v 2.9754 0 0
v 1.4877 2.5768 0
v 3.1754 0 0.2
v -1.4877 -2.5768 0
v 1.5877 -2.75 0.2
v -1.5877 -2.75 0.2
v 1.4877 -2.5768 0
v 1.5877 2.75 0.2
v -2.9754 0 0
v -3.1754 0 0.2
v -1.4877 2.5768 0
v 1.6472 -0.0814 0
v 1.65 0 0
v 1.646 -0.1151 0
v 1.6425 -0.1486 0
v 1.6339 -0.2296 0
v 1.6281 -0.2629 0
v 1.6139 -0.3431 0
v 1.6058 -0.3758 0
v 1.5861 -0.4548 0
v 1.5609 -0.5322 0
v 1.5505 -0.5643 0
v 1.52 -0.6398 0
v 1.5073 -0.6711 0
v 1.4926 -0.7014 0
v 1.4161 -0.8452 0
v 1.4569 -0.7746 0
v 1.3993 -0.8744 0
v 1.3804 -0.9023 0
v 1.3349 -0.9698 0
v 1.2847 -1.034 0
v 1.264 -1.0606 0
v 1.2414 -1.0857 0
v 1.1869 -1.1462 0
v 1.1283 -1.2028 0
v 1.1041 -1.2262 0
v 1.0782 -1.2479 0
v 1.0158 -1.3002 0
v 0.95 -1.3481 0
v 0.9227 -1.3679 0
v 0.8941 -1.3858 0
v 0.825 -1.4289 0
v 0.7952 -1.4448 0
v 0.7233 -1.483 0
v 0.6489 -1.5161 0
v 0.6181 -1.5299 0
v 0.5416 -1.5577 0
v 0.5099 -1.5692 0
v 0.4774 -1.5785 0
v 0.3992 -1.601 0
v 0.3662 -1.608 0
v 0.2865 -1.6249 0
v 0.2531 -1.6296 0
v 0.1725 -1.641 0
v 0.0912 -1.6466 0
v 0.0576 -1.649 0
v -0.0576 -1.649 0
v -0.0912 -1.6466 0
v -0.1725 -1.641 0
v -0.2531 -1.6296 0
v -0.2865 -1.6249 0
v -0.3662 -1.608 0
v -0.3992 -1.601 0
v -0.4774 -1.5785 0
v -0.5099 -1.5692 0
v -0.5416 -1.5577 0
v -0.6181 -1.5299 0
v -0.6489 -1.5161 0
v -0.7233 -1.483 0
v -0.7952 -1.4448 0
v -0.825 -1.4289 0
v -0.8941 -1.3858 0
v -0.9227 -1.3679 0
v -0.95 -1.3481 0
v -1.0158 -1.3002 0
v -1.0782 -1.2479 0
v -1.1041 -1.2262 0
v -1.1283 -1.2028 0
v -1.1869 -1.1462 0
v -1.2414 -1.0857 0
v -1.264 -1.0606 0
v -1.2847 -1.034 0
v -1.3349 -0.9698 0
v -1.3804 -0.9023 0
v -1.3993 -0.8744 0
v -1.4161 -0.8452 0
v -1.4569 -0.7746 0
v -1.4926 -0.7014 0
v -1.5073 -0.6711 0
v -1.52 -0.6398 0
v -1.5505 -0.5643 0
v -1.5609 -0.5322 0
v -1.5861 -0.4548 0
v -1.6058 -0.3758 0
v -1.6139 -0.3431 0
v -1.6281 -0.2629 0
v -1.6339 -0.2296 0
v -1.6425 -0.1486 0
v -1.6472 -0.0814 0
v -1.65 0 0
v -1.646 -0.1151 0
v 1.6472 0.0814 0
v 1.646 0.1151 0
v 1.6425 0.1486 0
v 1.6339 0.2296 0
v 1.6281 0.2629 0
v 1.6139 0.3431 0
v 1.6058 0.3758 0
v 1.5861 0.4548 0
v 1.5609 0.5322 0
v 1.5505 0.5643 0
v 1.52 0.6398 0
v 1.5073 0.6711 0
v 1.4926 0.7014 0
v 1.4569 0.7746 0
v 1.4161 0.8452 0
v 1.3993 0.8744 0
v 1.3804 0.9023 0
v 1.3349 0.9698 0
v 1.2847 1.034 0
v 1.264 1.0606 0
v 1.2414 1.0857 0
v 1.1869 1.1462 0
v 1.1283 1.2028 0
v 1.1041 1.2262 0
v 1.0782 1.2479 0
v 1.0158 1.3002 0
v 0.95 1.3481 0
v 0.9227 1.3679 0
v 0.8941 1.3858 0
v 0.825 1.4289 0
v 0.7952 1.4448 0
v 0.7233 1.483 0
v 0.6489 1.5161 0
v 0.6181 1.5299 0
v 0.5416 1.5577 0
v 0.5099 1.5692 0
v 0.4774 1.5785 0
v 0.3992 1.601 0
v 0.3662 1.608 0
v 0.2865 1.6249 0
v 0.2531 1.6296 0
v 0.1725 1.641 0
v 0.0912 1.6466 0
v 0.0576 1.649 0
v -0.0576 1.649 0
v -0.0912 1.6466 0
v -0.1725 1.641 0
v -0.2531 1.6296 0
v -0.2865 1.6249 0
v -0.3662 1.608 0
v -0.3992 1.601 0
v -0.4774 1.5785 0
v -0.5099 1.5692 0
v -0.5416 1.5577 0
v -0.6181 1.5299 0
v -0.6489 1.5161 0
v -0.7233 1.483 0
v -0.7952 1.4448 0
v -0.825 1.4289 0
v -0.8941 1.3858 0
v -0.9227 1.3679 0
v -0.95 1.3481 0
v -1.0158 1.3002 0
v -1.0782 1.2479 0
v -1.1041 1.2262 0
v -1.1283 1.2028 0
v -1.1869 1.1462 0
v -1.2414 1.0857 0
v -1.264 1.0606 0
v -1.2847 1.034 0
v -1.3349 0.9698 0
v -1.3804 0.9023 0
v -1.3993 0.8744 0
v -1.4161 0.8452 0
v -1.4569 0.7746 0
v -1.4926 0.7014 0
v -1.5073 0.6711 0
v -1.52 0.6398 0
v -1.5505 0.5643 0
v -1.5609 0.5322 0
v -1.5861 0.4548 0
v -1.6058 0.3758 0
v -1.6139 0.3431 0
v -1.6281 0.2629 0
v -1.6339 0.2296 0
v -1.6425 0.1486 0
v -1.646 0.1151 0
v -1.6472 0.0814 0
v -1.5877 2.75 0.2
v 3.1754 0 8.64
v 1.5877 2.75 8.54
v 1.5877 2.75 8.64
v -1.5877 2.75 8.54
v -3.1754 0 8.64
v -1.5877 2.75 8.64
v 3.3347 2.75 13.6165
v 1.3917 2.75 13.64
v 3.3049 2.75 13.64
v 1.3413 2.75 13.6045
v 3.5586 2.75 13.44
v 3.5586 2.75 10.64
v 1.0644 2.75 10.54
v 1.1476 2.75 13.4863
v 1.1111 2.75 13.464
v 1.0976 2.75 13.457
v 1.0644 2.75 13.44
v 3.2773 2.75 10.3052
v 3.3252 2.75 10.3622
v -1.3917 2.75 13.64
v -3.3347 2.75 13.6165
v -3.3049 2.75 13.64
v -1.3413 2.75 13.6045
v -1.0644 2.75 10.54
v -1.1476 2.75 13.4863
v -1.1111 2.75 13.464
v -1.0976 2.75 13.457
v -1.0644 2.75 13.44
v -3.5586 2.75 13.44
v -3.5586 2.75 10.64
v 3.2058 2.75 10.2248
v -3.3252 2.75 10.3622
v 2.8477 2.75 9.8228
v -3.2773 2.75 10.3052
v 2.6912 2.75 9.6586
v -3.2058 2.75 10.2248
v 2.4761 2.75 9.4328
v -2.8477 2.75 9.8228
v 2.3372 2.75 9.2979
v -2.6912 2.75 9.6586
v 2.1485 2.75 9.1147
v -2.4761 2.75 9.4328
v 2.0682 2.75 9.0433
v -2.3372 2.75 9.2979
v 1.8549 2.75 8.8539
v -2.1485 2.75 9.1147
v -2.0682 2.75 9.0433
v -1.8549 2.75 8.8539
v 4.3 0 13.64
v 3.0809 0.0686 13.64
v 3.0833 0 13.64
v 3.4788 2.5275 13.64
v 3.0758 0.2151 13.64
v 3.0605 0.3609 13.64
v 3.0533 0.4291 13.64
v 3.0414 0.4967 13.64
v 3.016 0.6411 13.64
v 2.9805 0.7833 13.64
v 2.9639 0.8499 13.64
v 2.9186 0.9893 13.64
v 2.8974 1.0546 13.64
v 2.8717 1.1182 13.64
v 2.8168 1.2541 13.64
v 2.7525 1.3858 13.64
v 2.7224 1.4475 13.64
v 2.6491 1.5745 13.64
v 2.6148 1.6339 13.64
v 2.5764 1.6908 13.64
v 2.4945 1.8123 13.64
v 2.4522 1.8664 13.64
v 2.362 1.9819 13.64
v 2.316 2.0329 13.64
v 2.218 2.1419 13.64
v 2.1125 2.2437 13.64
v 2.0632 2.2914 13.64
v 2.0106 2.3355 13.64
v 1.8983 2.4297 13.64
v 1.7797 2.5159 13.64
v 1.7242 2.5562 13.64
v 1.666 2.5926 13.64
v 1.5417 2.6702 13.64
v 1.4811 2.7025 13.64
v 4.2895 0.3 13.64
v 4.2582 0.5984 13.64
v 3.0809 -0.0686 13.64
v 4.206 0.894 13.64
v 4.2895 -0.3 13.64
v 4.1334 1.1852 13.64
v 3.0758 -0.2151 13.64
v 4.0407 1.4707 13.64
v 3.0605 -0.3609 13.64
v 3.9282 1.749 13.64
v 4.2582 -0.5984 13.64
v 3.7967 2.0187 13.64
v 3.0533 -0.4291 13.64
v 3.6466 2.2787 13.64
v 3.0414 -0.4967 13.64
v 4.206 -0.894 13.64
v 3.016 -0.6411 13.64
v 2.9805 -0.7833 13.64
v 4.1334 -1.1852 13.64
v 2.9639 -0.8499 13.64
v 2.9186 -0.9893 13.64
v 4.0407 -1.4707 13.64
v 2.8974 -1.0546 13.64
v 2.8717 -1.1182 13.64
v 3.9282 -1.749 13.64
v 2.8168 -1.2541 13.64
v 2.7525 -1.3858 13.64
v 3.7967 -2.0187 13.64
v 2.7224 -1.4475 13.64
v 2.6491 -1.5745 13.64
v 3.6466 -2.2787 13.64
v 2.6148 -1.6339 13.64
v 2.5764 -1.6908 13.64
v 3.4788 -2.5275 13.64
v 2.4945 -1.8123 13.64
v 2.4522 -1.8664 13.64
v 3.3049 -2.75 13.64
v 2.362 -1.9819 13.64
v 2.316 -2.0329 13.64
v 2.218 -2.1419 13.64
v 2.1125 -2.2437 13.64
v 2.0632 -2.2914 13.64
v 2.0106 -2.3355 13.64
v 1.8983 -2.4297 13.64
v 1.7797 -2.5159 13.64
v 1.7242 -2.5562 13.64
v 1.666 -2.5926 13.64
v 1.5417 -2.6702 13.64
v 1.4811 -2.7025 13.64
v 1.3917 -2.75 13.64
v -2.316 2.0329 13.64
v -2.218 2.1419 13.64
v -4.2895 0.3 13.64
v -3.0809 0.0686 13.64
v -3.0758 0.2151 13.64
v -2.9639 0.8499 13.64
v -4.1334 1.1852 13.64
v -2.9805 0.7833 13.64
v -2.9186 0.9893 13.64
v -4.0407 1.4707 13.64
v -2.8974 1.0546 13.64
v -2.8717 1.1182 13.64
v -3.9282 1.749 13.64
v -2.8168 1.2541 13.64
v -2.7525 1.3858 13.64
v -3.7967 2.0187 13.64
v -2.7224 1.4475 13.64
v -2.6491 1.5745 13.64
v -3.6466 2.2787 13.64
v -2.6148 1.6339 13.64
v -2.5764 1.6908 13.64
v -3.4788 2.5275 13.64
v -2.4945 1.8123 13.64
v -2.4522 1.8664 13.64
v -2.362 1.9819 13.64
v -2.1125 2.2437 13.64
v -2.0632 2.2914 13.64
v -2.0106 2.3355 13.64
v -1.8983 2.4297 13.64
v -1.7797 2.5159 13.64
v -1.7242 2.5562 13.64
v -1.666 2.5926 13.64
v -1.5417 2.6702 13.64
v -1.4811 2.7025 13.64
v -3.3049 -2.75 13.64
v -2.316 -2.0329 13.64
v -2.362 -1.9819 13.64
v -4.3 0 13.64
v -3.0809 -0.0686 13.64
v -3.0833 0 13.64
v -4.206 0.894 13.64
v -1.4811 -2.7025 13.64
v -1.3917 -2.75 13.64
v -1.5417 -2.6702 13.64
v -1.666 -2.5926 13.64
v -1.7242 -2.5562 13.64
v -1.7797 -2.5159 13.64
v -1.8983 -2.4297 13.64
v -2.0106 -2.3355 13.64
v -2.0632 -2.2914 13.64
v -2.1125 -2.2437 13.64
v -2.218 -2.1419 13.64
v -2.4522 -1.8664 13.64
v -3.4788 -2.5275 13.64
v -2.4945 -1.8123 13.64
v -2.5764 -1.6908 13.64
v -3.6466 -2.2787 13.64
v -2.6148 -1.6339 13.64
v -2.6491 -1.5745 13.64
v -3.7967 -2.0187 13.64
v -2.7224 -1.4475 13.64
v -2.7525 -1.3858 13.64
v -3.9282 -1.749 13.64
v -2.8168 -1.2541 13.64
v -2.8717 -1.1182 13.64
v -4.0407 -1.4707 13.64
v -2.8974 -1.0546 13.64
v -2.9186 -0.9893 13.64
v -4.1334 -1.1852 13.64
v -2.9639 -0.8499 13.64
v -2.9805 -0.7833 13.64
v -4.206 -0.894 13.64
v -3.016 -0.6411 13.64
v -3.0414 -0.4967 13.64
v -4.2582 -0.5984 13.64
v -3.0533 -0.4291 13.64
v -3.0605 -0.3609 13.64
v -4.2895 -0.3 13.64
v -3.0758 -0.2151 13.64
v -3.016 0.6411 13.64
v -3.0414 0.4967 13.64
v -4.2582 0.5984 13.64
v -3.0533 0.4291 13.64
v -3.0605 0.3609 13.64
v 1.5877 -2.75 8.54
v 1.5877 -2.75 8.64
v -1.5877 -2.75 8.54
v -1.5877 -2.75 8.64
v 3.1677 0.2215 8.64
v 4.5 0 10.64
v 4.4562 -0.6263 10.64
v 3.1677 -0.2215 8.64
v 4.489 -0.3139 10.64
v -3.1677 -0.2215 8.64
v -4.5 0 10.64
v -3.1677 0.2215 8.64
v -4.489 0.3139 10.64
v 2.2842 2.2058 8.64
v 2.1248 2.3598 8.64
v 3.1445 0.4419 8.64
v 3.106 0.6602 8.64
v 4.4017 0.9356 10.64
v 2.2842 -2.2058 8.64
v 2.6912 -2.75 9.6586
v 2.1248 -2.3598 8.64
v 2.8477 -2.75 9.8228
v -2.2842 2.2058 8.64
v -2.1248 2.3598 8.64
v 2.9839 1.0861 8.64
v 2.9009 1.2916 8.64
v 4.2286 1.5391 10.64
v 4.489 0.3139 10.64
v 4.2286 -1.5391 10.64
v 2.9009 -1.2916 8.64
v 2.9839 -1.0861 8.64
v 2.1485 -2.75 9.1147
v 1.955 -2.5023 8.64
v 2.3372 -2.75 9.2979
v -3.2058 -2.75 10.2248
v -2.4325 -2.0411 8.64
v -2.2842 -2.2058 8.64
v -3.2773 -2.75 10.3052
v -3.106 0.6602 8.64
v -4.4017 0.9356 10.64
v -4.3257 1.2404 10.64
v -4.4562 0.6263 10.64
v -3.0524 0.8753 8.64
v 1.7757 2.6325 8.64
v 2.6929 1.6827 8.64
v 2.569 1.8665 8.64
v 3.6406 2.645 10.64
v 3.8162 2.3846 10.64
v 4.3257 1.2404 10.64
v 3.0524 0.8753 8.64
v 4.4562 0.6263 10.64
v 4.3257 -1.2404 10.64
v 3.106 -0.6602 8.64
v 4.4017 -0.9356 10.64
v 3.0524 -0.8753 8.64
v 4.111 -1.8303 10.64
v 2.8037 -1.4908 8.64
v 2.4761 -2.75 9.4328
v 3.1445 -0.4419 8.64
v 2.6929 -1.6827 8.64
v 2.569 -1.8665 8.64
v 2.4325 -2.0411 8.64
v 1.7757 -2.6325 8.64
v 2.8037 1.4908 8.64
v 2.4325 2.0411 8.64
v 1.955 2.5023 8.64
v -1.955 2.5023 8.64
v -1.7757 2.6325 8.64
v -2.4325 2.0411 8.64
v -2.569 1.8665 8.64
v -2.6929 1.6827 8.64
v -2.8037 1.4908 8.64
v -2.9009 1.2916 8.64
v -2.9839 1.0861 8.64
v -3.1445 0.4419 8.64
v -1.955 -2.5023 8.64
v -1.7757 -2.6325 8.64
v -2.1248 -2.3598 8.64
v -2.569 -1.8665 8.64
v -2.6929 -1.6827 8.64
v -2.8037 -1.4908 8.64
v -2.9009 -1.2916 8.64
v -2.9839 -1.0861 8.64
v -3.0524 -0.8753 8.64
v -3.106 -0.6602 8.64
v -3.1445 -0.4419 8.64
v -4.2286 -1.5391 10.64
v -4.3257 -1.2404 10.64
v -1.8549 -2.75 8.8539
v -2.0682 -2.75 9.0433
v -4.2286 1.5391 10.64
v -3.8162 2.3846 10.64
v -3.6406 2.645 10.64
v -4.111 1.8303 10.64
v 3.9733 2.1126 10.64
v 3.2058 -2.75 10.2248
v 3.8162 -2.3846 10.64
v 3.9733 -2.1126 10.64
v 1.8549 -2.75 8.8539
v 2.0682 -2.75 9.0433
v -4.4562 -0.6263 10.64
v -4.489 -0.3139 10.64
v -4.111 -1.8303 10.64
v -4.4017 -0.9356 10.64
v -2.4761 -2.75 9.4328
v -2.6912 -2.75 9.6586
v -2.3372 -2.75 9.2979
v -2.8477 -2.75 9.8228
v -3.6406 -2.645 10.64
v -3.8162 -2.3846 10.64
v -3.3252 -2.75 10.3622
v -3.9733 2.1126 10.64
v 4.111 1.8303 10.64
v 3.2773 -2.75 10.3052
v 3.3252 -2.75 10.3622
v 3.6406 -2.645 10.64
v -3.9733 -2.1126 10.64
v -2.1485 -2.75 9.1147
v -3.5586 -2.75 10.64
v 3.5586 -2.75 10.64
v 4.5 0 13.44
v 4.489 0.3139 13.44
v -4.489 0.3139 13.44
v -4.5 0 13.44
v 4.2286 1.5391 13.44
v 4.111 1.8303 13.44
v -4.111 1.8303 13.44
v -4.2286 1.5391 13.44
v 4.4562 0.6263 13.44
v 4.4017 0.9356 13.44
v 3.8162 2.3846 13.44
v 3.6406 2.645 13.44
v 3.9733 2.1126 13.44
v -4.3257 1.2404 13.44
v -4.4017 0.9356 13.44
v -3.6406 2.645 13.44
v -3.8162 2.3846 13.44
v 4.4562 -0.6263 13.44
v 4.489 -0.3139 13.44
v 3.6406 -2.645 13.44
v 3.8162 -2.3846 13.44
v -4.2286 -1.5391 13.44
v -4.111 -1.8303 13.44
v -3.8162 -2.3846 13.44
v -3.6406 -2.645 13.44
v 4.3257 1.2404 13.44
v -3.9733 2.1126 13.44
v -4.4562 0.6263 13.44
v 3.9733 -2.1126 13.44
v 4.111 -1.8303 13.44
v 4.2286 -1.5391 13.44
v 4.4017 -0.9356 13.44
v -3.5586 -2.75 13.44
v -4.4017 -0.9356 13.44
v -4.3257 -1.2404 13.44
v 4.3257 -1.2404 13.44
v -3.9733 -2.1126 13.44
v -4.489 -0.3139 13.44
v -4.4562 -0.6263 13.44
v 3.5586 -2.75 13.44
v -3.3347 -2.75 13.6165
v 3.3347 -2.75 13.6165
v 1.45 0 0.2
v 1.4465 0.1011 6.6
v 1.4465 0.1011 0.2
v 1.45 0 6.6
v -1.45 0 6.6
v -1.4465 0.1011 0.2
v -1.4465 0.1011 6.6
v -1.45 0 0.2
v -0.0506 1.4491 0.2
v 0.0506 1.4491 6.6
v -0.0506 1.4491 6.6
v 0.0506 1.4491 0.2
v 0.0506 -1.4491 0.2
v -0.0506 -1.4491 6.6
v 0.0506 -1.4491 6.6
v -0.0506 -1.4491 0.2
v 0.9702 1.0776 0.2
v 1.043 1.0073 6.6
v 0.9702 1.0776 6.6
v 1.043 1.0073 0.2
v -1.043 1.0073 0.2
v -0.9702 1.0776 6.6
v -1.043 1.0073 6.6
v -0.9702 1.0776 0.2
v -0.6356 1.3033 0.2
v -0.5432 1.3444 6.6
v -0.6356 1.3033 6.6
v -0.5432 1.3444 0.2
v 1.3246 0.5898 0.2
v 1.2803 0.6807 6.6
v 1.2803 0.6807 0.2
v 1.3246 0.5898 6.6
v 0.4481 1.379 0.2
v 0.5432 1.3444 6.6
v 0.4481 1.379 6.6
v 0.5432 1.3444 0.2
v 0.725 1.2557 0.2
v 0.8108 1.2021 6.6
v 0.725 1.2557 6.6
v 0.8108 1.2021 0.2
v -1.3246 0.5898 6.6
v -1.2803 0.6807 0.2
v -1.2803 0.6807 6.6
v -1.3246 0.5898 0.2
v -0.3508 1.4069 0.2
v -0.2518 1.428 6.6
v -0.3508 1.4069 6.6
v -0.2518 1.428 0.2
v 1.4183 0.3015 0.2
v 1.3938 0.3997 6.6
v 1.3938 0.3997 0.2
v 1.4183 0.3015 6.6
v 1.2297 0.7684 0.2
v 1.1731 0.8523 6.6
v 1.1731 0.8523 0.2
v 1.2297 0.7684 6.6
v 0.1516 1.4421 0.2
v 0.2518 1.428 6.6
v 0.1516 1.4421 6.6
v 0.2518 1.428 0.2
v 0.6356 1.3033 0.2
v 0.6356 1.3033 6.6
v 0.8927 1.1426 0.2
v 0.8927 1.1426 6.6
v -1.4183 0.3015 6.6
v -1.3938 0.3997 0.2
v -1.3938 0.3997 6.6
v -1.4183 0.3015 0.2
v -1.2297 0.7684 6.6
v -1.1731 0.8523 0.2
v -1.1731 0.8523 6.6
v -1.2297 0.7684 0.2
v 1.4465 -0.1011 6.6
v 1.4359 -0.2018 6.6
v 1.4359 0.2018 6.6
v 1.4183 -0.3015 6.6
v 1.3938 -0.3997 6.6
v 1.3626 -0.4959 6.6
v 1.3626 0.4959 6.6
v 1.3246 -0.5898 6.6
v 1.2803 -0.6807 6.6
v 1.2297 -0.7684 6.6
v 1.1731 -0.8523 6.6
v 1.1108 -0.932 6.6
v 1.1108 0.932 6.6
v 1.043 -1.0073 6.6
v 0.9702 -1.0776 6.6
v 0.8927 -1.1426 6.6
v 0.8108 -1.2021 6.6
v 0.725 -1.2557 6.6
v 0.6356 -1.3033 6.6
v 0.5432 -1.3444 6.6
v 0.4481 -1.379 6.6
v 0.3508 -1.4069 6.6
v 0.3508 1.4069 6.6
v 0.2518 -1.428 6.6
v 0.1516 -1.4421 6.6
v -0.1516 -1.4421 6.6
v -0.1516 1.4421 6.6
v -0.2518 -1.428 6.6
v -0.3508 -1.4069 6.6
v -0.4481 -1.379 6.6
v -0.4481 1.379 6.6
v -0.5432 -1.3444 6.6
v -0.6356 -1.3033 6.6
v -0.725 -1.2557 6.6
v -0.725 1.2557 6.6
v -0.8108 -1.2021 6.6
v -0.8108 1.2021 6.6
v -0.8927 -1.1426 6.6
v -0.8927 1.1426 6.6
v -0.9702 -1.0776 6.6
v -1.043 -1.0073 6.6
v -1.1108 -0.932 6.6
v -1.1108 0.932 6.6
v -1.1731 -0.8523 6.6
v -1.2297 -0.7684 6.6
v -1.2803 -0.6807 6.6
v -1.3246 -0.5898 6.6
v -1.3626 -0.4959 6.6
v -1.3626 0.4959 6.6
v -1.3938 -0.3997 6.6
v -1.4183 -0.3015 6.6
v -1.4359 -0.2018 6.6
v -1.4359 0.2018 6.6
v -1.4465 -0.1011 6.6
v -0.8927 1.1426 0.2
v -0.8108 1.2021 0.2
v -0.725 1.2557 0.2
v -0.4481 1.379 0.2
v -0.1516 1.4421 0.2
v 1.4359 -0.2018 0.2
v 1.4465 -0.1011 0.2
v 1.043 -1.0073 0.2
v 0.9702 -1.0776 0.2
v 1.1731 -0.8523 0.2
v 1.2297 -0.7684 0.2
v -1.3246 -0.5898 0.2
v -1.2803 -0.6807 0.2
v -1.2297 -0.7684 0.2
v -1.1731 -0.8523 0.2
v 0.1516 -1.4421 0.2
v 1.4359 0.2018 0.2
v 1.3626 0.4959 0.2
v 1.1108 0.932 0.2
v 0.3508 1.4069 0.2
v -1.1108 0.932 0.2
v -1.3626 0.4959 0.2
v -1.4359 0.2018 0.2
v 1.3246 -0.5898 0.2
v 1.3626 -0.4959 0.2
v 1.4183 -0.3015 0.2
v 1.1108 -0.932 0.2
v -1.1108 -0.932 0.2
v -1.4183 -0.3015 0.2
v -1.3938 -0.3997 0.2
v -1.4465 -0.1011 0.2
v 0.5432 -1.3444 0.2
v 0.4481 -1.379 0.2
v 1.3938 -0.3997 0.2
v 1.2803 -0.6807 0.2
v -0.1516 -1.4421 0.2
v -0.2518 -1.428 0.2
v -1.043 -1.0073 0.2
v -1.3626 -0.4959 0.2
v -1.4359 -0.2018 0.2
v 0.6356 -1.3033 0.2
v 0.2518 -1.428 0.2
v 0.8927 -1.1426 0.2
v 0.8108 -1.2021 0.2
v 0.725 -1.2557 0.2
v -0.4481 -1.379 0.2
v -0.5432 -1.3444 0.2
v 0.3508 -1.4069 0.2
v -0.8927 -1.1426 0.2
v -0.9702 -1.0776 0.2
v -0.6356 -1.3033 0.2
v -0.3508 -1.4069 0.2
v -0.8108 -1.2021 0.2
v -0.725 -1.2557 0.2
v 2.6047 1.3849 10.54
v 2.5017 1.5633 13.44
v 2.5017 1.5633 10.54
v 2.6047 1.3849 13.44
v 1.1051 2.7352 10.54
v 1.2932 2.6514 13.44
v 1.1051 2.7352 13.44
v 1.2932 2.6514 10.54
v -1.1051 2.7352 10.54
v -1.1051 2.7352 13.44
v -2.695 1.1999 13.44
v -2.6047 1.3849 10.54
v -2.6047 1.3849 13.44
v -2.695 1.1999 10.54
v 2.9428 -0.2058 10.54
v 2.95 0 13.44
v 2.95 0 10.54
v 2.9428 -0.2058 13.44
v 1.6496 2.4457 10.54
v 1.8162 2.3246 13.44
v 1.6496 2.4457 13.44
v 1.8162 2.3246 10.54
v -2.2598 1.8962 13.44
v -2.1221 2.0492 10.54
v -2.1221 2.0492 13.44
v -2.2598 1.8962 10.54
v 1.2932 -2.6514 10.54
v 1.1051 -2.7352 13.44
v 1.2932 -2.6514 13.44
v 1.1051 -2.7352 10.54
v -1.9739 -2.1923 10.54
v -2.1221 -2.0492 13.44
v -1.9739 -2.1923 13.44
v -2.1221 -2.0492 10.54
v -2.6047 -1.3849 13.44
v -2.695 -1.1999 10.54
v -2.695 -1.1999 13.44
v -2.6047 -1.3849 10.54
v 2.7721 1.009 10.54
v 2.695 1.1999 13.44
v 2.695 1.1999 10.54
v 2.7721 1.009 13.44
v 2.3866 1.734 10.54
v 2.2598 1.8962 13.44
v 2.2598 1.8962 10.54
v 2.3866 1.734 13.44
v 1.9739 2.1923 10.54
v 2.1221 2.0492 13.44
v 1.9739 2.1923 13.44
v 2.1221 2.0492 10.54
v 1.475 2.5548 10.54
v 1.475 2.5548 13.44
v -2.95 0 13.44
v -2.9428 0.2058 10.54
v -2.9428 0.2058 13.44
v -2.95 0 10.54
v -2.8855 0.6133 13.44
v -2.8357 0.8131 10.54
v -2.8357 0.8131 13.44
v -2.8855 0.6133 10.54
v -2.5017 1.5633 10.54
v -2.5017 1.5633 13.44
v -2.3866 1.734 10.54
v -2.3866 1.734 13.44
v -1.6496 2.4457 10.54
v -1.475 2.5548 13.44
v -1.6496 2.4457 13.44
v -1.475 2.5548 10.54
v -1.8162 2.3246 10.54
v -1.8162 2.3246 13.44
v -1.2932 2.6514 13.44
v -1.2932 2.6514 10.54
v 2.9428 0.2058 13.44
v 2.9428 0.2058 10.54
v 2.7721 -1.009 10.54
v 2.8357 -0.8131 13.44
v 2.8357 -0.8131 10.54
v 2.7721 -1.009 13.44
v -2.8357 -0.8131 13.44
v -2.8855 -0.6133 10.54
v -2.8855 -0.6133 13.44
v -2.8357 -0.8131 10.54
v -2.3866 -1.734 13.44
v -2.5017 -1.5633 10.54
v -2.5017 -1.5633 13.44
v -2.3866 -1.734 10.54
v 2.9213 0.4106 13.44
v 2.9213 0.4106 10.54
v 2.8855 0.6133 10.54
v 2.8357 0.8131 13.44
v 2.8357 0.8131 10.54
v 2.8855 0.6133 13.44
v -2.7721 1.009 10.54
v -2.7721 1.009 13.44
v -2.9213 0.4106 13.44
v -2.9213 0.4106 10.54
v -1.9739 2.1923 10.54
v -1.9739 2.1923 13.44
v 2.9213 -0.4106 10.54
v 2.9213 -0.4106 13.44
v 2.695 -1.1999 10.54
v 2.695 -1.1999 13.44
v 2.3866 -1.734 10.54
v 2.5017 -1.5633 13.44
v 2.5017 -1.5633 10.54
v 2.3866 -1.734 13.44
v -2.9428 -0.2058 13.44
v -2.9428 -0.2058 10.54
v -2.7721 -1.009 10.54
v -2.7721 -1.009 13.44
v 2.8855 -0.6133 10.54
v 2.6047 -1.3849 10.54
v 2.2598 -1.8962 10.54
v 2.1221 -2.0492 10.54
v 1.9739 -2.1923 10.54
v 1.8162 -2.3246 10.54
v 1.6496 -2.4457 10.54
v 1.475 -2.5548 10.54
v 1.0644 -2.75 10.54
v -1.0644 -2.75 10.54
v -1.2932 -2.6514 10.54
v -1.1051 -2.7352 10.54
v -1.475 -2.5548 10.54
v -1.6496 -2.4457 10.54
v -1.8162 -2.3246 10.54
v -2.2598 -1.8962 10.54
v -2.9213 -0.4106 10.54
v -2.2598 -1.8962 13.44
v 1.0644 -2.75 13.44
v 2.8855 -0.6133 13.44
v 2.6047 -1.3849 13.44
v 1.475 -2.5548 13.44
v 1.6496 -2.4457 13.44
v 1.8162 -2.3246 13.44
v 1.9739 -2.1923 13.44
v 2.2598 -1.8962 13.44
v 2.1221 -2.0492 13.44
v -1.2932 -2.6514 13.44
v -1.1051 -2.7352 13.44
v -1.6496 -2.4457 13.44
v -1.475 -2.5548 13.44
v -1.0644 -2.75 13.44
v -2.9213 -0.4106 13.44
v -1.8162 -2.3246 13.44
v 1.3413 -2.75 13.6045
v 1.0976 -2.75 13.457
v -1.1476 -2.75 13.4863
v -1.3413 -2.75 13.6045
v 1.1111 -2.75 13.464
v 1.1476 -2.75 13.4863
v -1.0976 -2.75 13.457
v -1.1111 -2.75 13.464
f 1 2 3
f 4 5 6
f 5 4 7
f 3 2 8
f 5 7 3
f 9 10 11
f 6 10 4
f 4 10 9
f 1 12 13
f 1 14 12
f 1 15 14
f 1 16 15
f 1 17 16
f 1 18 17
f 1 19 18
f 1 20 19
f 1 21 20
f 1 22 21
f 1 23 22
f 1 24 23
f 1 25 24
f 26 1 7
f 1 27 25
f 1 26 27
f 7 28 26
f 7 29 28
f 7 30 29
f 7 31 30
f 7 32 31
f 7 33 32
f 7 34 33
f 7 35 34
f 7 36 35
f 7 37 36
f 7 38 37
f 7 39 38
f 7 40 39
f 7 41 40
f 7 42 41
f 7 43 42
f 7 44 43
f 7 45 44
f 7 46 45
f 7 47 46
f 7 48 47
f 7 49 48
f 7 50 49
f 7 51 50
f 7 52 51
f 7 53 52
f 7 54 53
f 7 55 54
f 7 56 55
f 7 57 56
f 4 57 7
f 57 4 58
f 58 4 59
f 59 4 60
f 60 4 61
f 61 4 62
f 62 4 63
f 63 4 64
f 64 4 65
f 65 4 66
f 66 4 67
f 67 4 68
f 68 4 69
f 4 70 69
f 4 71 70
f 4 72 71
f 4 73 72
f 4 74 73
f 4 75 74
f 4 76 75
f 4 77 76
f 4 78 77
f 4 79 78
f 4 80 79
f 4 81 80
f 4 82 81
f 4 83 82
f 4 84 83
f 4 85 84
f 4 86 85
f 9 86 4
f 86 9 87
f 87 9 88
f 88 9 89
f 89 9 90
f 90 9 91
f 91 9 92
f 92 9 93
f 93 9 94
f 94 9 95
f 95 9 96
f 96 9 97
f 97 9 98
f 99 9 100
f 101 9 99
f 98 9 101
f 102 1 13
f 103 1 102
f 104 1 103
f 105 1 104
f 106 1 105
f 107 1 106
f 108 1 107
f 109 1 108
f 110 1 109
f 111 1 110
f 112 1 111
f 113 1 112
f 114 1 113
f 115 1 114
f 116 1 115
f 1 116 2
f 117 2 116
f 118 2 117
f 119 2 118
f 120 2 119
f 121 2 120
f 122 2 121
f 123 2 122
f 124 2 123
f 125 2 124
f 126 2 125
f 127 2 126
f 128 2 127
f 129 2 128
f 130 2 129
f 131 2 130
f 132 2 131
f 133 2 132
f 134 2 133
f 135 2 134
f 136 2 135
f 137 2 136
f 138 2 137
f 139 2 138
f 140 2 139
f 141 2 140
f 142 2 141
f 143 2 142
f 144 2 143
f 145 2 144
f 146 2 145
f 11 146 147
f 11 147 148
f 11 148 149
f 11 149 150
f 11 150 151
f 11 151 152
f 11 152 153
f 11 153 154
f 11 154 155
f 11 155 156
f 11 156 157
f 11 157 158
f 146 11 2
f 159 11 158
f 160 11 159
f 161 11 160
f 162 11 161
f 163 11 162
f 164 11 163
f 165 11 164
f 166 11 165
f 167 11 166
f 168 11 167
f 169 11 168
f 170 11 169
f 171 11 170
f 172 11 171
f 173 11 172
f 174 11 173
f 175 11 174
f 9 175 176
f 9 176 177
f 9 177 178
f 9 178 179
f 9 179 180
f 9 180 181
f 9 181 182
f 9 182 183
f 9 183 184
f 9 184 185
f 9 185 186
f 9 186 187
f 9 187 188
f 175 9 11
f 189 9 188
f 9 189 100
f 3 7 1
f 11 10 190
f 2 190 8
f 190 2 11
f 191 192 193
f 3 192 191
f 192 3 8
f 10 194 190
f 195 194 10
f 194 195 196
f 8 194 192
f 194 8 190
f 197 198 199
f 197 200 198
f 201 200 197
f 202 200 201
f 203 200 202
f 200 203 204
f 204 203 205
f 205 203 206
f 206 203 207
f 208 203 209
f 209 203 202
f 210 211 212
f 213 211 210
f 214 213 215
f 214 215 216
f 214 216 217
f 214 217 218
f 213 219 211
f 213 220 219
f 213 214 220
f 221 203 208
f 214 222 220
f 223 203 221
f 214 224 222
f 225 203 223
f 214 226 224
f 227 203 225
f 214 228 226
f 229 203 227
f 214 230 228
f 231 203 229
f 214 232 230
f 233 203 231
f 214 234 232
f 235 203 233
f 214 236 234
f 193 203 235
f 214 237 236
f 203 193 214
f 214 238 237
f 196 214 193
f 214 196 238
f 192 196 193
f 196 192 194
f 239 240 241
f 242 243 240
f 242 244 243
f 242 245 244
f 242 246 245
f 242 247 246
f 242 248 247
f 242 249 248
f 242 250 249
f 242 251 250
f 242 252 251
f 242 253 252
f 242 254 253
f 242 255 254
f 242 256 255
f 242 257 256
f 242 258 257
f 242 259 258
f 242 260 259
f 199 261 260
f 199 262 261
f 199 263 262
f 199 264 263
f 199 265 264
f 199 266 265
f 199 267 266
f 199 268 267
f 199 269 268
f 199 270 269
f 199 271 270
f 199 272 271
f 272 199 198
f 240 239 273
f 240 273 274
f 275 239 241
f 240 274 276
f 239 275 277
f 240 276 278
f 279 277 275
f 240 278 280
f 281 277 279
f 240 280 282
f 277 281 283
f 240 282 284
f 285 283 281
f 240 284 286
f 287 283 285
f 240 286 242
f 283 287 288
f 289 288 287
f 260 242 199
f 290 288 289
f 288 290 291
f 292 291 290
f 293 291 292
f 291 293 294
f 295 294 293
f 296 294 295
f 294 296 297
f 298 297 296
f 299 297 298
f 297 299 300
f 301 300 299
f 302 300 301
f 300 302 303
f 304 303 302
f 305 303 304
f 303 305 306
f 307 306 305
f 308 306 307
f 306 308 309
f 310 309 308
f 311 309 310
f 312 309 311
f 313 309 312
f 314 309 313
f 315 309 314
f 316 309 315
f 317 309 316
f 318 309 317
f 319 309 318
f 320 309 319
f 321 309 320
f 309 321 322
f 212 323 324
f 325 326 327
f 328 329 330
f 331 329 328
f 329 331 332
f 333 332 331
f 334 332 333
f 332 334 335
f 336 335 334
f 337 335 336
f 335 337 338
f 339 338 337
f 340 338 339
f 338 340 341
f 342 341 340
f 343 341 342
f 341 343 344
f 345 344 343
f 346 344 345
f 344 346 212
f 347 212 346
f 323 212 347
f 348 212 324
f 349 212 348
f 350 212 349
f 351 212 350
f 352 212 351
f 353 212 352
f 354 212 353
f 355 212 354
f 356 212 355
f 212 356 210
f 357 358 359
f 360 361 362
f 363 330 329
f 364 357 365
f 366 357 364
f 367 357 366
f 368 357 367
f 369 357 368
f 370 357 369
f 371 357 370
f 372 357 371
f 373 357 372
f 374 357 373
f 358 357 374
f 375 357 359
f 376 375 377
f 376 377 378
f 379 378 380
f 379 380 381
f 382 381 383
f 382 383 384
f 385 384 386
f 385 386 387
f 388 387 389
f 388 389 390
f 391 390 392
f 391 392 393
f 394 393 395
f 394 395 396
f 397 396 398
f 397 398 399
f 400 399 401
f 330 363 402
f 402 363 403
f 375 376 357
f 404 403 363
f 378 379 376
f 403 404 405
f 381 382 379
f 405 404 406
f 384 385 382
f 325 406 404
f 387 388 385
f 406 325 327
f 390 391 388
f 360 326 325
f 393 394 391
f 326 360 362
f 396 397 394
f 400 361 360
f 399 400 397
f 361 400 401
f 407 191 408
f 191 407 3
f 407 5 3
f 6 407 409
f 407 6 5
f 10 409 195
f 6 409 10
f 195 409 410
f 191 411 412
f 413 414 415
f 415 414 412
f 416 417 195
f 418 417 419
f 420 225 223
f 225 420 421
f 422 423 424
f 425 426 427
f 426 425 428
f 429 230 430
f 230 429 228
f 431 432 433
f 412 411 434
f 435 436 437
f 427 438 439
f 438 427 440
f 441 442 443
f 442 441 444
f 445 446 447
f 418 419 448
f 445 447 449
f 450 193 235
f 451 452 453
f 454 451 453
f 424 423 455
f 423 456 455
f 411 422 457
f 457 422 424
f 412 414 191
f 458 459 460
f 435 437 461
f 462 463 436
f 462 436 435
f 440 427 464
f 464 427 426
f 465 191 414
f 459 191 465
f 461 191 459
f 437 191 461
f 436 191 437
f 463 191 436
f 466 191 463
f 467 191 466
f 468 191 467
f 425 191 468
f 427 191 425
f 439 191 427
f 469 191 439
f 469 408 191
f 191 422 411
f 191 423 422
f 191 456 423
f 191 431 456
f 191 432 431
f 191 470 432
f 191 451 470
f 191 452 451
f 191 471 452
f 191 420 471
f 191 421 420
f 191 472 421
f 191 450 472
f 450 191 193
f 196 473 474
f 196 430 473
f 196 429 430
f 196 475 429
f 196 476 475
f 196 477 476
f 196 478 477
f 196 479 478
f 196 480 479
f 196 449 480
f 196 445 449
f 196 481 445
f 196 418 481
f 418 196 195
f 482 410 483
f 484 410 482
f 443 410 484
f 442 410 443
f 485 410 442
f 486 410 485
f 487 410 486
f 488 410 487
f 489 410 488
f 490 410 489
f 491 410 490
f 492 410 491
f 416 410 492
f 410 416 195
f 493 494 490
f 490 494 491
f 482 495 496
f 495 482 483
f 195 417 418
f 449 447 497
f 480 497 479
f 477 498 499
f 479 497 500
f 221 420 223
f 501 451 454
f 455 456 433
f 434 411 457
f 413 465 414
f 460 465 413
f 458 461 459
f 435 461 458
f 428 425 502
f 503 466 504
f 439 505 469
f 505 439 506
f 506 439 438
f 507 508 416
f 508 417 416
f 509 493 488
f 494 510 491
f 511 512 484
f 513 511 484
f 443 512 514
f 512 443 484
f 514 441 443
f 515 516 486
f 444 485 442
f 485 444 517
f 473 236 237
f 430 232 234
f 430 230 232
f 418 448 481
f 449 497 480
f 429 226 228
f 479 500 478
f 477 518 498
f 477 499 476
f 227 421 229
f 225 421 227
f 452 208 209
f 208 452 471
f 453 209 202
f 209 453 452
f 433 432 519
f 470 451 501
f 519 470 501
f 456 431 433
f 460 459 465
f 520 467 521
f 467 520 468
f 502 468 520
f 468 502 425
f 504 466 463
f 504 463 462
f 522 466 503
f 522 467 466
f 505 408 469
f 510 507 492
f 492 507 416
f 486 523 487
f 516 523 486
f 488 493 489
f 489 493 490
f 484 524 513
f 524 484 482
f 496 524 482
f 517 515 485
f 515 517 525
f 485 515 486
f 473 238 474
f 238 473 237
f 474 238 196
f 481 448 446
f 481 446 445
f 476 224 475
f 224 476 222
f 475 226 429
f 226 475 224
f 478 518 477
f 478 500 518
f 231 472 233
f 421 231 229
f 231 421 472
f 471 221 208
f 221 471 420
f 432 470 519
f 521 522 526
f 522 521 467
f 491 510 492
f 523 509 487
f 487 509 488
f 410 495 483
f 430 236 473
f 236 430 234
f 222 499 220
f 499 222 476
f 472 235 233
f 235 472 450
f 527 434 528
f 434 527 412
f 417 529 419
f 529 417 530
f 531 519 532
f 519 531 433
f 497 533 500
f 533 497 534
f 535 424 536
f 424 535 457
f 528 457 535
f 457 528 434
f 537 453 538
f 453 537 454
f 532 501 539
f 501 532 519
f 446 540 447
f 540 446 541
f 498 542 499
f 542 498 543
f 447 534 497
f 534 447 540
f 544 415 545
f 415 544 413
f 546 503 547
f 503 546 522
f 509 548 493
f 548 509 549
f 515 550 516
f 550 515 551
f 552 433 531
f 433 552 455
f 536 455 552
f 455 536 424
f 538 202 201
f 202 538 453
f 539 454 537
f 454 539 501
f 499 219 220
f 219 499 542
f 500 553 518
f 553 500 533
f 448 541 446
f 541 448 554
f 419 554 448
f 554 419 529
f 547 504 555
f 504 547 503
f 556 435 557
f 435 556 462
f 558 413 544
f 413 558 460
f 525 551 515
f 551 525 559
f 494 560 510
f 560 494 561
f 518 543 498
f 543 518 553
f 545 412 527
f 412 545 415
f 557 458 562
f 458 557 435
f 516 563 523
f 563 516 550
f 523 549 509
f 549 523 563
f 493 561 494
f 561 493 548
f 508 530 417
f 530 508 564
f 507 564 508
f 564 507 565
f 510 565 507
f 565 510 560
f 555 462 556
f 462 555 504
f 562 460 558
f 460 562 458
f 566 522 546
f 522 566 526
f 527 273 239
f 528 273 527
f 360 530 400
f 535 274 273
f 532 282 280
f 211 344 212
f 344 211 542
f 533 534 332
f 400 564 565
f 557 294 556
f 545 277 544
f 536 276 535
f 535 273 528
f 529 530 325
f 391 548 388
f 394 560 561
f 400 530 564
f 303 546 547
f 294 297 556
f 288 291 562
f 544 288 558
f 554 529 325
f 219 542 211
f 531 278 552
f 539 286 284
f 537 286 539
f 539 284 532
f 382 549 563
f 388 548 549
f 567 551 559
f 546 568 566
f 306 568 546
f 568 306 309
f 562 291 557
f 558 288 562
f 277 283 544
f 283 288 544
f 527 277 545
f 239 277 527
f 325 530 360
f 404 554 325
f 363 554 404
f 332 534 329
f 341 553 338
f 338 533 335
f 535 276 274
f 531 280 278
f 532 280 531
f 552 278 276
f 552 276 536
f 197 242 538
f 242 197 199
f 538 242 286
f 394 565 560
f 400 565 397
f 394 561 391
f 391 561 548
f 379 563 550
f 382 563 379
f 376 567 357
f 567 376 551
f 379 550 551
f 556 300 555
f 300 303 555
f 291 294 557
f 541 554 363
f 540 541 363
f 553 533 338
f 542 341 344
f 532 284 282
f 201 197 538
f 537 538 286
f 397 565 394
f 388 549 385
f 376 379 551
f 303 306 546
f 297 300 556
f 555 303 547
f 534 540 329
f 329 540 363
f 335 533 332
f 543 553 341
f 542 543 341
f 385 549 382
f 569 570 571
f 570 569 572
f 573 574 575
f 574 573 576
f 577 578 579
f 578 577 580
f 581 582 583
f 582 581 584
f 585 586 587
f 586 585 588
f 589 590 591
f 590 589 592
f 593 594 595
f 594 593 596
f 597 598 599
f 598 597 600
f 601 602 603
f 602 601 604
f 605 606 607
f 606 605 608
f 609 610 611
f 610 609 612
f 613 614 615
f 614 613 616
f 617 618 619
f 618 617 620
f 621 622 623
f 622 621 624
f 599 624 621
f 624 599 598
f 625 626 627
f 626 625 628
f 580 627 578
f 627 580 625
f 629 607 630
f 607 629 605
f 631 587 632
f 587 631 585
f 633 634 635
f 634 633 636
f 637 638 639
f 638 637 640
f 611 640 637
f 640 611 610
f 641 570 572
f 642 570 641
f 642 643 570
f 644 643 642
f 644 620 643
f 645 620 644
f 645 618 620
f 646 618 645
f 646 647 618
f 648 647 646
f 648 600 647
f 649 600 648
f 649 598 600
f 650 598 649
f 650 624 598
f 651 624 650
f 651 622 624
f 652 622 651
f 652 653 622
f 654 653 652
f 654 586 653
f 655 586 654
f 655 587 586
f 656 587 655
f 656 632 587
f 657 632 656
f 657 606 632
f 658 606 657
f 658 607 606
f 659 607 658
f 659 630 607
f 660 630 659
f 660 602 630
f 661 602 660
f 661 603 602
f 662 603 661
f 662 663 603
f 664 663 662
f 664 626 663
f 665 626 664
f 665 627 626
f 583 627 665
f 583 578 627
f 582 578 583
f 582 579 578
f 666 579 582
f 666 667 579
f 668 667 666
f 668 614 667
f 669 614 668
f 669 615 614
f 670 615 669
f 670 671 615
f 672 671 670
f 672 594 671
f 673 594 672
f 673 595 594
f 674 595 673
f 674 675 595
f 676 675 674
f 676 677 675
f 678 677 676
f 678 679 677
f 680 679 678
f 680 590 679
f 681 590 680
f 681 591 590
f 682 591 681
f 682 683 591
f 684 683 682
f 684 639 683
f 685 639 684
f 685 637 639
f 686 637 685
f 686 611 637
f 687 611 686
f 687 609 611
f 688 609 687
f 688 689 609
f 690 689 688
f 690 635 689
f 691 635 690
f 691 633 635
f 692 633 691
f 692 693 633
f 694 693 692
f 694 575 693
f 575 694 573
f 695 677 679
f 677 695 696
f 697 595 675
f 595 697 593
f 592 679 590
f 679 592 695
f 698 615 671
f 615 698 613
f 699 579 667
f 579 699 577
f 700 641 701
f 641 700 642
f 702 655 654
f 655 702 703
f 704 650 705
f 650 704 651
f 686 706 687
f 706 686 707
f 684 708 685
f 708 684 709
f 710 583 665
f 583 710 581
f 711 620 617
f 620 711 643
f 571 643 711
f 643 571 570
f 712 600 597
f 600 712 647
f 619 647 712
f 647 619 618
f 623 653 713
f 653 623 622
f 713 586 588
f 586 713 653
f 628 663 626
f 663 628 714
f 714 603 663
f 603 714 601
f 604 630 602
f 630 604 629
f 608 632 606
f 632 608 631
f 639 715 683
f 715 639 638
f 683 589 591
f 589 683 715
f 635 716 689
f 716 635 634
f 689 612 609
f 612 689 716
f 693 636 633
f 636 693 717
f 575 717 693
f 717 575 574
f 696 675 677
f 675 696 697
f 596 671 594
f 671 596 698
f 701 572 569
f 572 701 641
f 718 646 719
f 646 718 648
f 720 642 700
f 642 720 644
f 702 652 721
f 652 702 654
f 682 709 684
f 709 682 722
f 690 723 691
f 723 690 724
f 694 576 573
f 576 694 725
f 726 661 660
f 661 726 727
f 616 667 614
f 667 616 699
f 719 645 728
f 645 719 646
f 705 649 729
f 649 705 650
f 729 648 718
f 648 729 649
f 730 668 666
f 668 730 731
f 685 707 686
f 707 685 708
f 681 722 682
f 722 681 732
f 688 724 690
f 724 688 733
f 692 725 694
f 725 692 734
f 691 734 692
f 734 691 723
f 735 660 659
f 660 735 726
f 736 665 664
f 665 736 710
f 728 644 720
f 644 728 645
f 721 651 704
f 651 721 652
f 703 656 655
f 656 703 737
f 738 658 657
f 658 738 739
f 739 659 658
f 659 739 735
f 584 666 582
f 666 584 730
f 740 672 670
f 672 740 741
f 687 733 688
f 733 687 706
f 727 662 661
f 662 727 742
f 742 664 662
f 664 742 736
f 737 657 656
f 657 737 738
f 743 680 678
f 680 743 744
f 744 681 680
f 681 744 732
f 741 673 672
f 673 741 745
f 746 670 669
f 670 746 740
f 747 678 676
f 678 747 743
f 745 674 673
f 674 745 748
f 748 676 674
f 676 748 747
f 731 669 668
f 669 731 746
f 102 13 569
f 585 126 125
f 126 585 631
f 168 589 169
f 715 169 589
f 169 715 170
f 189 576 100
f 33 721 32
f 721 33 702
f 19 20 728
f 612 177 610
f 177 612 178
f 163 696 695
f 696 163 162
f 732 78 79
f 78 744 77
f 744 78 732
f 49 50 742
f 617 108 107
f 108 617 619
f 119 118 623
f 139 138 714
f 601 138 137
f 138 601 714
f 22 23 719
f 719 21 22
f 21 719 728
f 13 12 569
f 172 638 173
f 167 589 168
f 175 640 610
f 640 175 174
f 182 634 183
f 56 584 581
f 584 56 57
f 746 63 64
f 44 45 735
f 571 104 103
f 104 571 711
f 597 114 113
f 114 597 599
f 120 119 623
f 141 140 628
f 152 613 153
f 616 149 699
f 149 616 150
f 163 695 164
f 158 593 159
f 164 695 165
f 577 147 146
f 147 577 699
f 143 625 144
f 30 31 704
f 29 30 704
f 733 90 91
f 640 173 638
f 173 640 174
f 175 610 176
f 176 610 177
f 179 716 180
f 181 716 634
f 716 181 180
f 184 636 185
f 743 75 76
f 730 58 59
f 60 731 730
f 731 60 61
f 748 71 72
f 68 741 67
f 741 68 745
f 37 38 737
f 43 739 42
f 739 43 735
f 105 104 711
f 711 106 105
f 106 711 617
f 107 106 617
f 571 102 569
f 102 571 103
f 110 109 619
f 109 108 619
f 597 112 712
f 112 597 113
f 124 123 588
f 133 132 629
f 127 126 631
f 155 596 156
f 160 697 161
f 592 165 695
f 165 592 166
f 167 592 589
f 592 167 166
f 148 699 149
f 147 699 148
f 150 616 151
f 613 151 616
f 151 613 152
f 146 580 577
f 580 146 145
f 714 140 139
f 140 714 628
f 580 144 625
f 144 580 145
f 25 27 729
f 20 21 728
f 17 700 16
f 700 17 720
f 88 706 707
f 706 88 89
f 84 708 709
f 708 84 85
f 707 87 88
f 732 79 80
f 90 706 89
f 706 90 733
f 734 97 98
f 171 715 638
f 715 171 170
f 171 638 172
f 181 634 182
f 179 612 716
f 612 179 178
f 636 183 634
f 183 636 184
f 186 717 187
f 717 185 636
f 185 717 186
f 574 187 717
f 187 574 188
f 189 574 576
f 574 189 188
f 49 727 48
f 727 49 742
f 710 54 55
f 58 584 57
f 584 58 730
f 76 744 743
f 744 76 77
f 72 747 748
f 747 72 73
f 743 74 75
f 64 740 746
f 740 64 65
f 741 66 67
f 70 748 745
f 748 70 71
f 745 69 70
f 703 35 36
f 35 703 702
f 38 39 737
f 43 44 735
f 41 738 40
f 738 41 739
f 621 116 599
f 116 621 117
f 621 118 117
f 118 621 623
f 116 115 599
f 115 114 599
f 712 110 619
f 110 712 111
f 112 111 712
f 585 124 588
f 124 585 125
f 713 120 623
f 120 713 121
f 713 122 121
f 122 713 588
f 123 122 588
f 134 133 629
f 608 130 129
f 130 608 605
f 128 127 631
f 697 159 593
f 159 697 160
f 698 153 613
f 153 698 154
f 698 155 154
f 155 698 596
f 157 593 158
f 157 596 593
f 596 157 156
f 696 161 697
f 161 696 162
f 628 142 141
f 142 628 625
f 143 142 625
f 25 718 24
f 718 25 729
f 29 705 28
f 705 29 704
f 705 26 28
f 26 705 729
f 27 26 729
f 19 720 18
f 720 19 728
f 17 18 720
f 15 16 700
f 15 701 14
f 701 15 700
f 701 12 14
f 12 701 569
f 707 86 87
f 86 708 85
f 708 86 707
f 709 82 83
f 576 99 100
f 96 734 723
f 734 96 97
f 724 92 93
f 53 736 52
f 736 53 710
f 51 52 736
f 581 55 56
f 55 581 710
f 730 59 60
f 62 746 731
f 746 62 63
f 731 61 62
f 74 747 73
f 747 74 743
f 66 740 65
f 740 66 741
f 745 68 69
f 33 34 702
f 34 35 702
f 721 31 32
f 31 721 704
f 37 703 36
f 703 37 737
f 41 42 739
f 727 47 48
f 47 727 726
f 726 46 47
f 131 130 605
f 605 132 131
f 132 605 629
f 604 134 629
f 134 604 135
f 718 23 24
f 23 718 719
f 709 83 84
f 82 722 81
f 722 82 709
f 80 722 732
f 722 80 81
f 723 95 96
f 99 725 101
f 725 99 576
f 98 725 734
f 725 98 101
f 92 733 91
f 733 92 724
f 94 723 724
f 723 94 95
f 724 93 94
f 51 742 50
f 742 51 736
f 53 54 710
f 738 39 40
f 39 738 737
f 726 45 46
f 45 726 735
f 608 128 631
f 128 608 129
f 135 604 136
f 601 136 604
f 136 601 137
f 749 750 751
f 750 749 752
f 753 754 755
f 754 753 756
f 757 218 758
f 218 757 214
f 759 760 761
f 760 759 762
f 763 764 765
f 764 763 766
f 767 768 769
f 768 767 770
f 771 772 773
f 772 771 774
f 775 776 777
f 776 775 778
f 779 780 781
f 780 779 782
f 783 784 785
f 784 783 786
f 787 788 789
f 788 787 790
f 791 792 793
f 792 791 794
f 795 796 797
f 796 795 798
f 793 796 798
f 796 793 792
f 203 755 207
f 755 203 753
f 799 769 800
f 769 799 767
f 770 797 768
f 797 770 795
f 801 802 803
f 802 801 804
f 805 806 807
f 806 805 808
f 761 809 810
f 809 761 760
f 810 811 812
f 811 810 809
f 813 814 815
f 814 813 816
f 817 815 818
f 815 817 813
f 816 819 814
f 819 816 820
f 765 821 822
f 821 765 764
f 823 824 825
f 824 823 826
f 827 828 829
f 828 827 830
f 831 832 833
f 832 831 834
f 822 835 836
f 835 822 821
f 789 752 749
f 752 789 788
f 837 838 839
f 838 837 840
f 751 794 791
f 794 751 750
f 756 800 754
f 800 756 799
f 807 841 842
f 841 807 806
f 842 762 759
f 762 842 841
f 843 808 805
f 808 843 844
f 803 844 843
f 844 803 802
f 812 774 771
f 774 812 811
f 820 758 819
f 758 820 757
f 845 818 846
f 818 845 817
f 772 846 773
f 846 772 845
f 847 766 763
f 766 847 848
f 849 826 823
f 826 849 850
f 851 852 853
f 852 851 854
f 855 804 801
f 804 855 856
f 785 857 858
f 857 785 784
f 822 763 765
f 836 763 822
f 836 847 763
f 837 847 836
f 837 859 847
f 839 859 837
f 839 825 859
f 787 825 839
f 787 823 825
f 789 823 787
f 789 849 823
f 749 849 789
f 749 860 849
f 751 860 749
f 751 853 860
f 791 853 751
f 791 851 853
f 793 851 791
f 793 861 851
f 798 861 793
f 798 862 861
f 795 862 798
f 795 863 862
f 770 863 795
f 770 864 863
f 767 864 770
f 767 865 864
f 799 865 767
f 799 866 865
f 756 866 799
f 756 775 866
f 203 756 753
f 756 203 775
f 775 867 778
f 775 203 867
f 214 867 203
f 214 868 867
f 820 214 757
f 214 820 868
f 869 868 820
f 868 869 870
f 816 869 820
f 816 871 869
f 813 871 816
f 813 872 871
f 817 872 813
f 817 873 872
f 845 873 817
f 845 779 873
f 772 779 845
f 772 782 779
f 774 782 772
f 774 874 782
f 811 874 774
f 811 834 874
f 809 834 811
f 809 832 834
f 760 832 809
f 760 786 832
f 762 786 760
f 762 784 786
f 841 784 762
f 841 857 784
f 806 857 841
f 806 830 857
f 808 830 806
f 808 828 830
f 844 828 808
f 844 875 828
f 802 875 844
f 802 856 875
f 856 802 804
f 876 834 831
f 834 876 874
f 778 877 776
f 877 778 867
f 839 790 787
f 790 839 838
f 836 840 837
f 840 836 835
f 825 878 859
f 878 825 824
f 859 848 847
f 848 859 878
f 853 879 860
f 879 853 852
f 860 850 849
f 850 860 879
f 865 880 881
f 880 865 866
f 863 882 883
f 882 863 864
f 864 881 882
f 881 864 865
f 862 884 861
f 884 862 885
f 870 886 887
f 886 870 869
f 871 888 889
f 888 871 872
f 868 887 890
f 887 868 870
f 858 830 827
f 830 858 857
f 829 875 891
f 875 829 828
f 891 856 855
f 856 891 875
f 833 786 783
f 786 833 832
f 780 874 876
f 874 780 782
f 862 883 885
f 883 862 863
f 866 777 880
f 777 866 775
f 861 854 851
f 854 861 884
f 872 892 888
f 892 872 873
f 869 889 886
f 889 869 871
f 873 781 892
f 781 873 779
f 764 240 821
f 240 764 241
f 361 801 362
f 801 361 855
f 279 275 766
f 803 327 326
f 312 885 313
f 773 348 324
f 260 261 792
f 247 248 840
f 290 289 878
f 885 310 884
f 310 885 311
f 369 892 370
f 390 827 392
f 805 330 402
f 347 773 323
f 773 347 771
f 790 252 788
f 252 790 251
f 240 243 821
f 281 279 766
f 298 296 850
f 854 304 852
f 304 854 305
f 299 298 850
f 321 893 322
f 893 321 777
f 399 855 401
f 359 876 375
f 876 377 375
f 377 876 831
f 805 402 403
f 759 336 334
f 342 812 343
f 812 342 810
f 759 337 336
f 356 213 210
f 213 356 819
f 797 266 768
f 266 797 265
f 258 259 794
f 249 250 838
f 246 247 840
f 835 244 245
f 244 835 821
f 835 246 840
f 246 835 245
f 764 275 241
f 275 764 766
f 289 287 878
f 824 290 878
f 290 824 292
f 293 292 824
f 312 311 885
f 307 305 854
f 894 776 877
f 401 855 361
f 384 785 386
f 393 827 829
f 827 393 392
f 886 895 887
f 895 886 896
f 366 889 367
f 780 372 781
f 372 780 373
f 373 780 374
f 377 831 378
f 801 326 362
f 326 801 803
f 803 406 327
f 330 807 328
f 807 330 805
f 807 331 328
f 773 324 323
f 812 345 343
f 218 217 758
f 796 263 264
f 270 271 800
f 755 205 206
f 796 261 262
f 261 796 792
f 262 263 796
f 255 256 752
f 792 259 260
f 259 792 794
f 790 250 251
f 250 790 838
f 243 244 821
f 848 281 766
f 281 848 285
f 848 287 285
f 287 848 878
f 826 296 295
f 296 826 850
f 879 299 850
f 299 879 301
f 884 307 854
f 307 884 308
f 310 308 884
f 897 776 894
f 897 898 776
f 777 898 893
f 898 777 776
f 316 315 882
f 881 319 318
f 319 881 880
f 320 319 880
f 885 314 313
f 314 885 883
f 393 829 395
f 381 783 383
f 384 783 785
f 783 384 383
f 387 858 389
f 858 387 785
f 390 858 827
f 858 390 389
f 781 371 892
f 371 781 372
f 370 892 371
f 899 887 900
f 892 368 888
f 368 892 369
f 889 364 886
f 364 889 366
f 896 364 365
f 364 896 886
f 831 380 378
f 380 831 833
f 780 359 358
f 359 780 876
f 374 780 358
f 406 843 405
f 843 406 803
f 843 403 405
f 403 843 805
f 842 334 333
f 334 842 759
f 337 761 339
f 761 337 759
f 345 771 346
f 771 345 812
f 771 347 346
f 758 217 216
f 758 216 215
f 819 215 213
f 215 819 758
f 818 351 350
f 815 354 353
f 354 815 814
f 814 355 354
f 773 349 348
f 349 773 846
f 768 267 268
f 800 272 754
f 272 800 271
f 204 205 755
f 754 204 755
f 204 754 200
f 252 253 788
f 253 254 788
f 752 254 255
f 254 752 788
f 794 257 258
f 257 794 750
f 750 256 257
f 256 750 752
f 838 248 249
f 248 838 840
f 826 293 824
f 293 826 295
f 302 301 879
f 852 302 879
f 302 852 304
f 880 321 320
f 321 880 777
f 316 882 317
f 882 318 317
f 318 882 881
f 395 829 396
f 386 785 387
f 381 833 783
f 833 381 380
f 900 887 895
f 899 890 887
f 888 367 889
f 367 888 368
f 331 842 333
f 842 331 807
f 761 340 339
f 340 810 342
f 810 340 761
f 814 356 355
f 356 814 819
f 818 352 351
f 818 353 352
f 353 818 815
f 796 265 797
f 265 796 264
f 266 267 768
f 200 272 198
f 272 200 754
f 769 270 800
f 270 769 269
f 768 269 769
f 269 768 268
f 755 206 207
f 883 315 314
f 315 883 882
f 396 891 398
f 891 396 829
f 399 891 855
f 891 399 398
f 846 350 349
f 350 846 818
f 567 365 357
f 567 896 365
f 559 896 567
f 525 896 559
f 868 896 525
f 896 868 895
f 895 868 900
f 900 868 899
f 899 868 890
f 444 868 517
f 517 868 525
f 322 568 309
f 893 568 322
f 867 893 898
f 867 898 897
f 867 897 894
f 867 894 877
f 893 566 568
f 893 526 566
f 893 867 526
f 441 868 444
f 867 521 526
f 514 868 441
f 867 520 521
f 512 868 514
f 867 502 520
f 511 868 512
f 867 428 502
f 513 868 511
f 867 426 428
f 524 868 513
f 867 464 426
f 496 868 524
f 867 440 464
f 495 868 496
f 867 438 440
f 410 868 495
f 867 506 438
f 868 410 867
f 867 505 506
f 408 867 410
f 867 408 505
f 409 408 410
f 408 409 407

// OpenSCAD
// 3D Printed Spacer for RCBus Modules
//
// Copyright (C) 2023 Sergey Kiselev.
//
// This program is free software: you can redistribute it and/or modify
// it under the terms of the GNU General Public License as published by
// the Free Software Foundation, either version 3 of the License, or
// (at your option) any later version.
//
// This program is distributed in the hope that it will be useful,
// but WITHOUT ANY WARRANTY; without even the implied warranty of
// MERCHANTABILITY or FITNESS FOR A PARTICULAR PURPOSE.  See the
// GNU General Public License for more details.
//
// You should have received a copy of the GNU General Public License
// along with this program.  If not, see <http://www.gnu.org/licenses/>.

in2mm=25.4;
pcb_thickness=1.6;
card_spacing=0.6*in2mm;
spacer_height=card_spacing-pcb_thickness;
spacer_width=5.5;
spacer_radius=spacer_width/sqrt(3);
spacer_faces=6;
m3_screw_length=8;
m3_tap_hole_radius=1.45;
m3_tap_hole_depth=m3_screw_length-pcb_thickness+0.2;
screw_head_radius=5.7/2;
screw_head_height=3;
head_radius=4.5;
head_height=screw_head_height;
skirt_height=2;
bevel = 0.2;

tolerance=0.1;
$fn=90;

color("blue") card_spacer();

module card_spacer() {
    difference() {
        union() {
            // bevel at the bottom of the spacer
            cylinder(bevel,r1=spacer_radius-bevel,r2=spacer_radius, $fn=6);
            // spacer - hexagonal part
            translate([0,0,bevel]) {
                cylinder(h=spacer_height-bevel,r=spacer_radius,$fn=spacer_faces);
            }
            // spacer - skirt to the head
            translate([0,0,spacer_height-head_height-skirt_height]) {
                cylinder(h=skirt_height,r1=spacer_radius,r2=head_radius);
            }
            // head
            translate([0,0,spacer_height-head_height]) {
                cylinder(h=head_height-bevel,r=head_radius);
            }
            // bevel at the top of the spacer
            translate([0,0,spacer_height-bevel]) {
                cylinder(h=bevel,r1=head_radius,r2=head_radius-bevel);
            }
        }
        translate([0,0,-tolerance]) {
            // hole for M3 screw
            cylinder(h=m3_tap_hole_depth+tolerance,r=m3_tap_hole_radius);
            // bevel for the screw enterance
            cylinder(h=bevel+tolerance,r1=m3_tap_hole_radius+bevel+tolerance,r2=m3_tap_hole_radius);
        }
        // cutout for the screw head
        translate([0,0,spacer_height-screw_head_height-tolerance]) {
            cylinder(h=screw_head_height+tolerance*2,r=screw_head_radius+tolerance);
        }
        // bevel for the screw head
        translate([0,0,spacer_height-bevel]) {
            cylinder(h=bevel+tolerance,r1=screw_head_radius+tolerance,r2=screw_head_radius+bevel+tolerance);
        }
        translate([-head_radius-tolerance,-head_radius-tolerance,spacer_height-head_height-skirt_height-tolerance]) {
            cube([head_radius*2+tolerance*2,head_radius-spacer_width/2+tolerance,head_height+skirt_height+tolerance*2]);
        }
        translate([-head_radius-tolerance,spacer_width/2,spacer_height-head_height-skirt_height-tolerance]) {
            cube([head_radius*2+tolerance*2,head_radius-spacer_width/2+tolerance,head_height+skirt_height+tolerance*2]);
        }
    }
}
